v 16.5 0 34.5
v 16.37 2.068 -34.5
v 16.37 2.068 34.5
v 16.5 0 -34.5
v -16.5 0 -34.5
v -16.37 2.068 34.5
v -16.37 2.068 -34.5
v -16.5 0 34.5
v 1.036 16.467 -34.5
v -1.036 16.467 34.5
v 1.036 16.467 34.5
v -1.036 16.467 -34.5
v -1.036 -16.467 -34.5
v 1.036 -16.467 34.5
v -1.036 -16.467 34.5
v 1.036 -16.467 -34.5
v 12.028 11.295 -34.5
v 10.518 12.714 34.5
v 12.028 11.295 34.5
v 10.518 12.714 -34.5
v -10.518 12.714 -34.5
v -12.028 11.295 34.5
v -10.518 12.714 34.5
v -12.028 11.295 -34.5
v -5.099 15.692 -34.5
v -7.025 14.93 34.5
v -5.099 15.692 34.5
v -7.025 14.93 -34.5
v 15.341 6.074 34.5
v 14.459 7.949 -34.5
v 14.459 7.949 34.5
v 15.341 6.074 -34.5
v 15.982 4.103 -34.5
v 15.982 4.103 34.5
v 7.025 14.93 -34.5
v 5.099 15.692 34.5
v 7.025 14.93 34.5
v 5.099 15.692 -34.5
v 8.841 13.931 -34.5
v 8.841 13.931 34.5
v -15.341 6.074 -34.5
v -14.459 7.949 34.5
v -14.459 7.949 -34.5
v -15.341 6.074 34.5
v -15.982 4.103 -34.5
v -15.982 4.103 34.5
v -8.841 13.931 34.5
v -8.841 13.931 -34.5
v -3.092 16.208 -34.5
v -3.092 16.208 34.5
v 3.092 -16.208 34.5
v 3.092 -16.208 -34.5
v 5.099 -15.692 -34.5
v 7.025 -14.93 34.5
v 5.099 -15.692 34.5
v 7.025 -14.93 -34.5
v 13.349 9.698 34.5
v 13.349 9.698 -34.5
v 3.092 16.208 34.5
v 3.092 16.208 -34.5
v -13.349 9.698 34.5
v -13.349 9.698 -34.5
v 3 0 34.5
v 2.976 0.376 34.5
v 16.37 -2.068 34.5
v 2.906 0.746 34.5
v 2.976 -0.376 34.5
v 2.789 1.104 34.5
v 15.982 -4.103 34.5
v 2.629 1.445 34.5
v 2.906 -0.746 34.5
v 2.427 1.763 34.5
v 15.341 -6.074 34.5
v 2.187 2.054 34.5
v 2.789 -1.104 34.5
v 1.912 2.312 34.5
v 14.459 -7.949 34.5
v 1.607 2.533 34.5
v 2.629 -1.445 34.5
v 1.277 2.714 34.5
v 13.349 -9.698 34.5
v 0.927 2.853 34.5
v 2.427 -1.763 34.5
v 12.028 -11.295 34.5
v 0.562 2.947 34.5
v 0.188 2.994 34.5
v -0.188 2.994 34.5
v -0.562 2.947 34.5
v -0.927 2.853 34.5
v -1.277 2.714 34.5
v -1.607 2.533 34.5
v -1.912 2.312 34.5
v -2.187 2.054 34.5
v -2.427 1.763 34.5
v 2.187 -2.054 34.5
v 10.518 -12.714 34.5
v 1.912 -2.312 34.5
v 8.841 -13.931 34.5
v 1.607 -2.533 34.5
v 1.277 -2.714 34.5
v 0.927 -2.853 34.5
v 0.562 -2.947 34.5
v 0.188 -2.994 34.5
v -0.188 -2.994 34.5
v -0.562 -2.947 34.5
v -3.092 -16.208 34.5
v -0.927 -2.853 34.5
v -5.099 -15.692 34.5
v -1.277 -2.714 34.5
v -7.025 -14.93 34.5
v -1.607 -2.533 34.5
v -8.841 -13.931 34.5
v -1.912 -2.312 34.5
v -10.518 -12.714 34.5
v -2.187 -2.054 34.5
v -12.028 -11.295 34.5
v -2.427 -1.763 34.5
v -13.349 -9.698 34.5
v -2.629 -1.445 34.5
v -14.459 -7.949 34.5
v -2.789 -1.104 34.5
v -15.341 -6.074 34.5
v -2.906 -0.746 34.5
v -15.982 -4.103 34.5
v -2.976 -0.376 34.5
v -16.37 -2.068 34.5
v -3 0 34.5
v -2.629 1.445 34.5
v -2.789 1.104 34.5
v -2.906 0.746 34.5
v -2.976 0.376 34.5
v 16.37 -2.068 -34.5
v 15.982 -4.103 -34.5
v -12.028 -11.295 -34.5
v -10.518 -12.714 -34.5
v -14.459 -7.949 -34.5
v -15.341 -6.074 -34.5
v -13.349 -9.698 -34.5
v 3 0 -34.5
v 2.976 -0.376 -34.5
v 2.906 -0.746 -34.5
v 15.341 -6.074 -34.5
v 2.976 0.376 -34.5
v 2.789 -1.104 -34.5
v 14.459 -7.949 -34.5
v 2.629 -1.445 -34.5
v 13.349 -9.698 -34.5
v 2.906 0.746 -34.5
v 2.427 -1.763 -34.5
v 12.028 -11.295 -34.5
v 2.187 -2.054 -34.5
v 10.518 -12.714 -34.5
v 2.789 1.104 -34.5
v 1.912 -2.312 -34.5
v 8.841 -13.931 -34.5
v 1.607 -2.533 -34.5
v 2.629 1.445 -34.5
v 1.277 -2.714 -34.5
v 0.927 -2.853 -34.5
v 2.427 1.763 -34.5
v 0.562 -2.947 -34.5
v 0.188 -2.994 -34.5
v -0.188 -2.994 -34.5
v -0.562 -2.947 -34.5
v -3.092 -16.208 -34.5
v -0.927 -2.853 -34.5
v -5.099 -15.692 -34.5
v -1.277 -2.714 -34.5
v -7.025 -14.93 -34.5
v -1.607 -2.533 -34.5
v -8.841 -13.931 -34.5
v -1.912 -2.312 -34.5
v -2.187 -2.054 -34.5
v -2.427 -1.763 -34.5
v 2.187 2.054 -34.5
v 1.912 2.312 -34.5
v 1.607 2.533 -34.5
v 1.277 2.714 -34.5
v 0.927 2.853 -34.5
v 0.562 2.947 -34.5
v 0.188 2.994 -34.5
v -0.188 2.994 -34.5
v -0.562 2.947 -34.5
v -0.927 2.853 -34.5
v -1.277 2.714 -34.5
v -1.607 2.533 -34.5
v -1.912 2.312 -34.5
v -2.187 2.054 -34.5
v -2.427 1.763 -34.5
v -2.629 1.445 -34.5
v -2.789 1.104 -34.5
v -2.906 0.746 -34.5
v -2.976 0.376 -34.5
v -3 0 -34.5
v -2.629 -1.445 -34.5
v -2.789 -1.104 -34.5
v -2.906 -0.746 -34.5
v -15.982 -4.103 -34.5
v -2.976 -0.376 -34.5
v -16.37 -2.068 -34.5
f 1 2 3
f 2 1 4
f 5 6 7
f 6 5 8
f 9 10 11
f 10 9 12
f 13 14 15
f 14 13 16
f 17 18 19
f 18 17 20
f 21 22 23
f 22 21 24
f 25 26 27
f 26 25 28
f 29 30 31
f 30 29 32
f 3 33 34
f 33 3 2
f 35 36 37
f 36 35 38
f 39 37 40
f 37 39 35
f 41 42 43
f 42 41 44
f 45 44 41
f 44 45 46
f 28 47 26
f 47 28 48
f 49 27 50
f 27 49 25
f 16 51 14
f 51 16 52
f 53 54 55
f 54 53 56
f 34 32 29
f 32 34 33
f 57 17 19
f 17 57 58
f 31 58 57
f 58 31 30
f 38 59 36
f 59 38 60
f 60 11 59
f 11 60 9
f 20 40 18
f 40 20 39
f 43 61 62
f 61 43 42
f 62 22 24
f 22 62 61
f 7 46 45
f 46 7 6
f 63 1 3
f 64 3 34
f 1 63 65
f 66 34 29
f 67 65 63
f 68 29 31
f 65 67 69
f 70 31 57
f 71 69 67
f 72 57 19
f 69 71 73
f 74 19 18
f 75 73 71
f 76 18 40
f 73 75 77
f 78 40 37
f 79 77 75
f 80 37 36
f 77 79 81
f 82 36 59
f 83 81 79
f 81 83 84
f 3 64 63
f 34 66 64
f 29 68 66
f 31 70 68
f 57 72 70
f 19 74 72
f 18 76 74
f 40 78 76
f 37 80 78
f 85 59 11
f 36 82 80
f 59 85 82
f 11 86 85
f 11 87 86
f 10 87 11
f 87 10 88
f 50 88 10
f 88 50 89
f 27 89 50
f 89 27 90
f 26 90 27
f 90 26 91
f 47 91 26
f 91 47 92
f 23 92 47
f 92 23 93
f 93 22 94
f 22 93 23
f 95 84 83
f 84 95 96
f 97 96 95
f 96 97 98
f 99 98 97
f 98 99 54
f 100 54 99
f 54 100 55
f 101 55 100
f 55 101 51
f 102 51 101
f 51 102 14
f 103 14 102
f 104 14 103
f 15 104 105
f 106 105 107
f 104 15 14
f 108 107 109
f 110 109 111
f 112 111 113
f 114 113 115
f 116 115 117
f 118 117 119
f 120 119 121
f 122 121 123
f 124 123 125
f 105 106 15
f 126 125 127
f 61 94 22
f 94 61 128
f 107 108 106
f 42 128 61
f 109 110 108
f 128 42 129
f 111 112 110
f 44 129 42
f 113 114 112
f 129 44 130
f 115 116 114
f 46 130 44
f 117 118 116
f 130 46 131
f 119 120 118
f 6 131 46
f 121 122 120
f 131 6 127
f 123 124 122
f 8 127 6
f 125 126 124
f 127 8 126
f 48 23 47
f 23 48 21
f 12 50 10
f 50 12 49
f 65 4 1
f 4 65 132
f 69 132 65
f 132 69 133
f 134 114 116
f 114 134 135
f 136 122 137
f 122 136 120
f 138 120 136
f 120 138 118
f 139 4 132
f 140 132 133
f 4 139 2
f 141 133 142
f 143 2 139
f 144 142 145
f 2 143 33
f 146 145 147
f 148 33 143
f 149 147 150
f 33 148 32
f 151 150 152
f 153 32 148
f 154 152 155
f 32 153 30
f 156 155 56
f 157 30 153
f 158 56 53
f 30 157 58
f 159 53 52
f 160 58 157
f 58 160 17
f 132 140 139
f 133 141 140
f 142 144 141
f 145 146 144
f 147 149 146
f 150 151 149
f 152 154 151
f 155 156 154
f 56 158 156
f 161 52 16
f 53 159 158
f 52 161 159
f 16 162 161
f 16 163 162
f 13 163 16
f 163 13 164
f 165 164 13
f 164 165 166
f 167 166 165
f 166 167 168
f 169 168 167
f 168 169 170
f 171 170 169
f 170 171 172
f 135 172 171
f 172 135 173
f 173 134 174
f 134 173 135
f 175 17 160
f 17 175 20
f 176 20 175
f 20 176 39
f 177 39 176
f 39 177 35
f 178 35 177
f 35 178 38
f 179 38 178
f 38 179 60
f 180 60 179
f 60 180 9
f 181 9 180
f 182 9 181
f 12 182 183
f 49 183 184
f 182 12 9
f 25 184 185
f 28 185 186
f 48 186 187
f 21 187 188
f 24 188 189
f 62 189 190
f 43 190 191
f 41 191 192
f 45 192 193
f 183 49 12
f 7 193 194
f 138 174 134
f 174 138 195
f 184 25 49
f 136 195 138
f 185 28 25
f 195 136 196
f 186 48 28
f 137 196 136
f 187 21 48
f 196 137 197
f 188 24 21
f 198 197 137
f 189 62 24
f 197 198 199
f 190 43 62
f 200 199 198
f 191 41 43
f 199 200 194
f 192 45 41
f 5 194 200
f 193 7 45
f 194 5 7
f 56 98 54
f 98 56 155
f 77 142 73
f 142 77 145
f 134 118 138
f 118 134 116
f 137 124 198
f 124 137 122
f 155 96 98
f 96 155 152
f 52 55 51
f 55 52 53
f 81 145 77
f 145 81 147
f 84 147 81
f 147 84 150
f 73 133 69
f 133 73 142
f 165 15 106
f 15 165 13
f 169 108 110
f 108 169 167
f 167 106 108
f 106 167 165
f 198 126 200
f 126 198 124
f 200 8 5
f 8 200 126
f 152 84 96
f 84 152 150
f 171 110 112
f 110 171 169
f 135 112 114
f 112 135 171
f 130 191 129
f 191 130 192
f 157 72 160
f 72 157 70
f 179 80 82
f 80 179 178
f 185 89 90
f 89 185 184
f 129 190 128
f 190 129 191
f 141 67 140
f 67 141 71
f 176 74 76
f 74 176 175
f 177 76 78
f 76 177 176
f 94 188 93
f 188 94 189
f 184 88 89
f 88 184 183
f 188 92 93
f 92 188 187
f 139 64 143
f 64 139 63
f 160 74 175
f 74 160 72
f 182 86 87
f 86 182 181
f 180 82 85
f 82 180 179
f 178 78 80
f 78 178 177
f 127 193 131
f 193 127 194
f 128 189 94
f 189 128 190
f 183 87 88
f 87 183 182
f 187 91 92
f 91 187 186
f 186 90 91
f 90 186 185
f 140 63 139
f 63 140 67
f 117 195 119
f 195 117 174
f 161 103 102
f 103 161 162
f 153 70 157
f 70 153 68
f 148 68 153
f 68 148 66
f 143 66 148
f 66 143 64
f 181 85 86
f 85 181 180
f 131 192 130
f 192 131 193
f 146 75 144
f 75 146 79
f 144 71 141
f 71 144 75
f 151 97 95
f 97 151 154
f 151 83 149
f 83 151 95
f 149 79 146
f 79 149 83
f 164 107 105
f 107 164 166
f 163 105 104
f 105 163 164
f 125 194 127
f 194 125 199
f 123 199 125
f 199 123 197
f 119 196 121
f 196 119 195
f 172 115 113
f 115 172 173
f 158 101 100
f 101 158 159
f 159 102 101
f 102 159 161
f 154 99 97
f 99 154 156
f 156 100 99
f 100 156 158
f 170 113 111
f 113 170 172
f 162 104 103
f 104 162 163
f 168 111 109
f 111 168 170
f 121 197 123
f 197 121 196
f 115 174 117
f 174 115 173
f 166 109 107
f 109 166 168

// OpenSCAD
$fn = 50;


difference() {
	union() {
		translate(v = [0, 0, -34.5000000000]) {
			cylinder(h = 69, r = 16.5000000000);
		}
	}
	union() {
		translate(v = [0, 0, -100.0000000000]) {
			cylinder(h = 200, r = 3);
		}
	}
}
